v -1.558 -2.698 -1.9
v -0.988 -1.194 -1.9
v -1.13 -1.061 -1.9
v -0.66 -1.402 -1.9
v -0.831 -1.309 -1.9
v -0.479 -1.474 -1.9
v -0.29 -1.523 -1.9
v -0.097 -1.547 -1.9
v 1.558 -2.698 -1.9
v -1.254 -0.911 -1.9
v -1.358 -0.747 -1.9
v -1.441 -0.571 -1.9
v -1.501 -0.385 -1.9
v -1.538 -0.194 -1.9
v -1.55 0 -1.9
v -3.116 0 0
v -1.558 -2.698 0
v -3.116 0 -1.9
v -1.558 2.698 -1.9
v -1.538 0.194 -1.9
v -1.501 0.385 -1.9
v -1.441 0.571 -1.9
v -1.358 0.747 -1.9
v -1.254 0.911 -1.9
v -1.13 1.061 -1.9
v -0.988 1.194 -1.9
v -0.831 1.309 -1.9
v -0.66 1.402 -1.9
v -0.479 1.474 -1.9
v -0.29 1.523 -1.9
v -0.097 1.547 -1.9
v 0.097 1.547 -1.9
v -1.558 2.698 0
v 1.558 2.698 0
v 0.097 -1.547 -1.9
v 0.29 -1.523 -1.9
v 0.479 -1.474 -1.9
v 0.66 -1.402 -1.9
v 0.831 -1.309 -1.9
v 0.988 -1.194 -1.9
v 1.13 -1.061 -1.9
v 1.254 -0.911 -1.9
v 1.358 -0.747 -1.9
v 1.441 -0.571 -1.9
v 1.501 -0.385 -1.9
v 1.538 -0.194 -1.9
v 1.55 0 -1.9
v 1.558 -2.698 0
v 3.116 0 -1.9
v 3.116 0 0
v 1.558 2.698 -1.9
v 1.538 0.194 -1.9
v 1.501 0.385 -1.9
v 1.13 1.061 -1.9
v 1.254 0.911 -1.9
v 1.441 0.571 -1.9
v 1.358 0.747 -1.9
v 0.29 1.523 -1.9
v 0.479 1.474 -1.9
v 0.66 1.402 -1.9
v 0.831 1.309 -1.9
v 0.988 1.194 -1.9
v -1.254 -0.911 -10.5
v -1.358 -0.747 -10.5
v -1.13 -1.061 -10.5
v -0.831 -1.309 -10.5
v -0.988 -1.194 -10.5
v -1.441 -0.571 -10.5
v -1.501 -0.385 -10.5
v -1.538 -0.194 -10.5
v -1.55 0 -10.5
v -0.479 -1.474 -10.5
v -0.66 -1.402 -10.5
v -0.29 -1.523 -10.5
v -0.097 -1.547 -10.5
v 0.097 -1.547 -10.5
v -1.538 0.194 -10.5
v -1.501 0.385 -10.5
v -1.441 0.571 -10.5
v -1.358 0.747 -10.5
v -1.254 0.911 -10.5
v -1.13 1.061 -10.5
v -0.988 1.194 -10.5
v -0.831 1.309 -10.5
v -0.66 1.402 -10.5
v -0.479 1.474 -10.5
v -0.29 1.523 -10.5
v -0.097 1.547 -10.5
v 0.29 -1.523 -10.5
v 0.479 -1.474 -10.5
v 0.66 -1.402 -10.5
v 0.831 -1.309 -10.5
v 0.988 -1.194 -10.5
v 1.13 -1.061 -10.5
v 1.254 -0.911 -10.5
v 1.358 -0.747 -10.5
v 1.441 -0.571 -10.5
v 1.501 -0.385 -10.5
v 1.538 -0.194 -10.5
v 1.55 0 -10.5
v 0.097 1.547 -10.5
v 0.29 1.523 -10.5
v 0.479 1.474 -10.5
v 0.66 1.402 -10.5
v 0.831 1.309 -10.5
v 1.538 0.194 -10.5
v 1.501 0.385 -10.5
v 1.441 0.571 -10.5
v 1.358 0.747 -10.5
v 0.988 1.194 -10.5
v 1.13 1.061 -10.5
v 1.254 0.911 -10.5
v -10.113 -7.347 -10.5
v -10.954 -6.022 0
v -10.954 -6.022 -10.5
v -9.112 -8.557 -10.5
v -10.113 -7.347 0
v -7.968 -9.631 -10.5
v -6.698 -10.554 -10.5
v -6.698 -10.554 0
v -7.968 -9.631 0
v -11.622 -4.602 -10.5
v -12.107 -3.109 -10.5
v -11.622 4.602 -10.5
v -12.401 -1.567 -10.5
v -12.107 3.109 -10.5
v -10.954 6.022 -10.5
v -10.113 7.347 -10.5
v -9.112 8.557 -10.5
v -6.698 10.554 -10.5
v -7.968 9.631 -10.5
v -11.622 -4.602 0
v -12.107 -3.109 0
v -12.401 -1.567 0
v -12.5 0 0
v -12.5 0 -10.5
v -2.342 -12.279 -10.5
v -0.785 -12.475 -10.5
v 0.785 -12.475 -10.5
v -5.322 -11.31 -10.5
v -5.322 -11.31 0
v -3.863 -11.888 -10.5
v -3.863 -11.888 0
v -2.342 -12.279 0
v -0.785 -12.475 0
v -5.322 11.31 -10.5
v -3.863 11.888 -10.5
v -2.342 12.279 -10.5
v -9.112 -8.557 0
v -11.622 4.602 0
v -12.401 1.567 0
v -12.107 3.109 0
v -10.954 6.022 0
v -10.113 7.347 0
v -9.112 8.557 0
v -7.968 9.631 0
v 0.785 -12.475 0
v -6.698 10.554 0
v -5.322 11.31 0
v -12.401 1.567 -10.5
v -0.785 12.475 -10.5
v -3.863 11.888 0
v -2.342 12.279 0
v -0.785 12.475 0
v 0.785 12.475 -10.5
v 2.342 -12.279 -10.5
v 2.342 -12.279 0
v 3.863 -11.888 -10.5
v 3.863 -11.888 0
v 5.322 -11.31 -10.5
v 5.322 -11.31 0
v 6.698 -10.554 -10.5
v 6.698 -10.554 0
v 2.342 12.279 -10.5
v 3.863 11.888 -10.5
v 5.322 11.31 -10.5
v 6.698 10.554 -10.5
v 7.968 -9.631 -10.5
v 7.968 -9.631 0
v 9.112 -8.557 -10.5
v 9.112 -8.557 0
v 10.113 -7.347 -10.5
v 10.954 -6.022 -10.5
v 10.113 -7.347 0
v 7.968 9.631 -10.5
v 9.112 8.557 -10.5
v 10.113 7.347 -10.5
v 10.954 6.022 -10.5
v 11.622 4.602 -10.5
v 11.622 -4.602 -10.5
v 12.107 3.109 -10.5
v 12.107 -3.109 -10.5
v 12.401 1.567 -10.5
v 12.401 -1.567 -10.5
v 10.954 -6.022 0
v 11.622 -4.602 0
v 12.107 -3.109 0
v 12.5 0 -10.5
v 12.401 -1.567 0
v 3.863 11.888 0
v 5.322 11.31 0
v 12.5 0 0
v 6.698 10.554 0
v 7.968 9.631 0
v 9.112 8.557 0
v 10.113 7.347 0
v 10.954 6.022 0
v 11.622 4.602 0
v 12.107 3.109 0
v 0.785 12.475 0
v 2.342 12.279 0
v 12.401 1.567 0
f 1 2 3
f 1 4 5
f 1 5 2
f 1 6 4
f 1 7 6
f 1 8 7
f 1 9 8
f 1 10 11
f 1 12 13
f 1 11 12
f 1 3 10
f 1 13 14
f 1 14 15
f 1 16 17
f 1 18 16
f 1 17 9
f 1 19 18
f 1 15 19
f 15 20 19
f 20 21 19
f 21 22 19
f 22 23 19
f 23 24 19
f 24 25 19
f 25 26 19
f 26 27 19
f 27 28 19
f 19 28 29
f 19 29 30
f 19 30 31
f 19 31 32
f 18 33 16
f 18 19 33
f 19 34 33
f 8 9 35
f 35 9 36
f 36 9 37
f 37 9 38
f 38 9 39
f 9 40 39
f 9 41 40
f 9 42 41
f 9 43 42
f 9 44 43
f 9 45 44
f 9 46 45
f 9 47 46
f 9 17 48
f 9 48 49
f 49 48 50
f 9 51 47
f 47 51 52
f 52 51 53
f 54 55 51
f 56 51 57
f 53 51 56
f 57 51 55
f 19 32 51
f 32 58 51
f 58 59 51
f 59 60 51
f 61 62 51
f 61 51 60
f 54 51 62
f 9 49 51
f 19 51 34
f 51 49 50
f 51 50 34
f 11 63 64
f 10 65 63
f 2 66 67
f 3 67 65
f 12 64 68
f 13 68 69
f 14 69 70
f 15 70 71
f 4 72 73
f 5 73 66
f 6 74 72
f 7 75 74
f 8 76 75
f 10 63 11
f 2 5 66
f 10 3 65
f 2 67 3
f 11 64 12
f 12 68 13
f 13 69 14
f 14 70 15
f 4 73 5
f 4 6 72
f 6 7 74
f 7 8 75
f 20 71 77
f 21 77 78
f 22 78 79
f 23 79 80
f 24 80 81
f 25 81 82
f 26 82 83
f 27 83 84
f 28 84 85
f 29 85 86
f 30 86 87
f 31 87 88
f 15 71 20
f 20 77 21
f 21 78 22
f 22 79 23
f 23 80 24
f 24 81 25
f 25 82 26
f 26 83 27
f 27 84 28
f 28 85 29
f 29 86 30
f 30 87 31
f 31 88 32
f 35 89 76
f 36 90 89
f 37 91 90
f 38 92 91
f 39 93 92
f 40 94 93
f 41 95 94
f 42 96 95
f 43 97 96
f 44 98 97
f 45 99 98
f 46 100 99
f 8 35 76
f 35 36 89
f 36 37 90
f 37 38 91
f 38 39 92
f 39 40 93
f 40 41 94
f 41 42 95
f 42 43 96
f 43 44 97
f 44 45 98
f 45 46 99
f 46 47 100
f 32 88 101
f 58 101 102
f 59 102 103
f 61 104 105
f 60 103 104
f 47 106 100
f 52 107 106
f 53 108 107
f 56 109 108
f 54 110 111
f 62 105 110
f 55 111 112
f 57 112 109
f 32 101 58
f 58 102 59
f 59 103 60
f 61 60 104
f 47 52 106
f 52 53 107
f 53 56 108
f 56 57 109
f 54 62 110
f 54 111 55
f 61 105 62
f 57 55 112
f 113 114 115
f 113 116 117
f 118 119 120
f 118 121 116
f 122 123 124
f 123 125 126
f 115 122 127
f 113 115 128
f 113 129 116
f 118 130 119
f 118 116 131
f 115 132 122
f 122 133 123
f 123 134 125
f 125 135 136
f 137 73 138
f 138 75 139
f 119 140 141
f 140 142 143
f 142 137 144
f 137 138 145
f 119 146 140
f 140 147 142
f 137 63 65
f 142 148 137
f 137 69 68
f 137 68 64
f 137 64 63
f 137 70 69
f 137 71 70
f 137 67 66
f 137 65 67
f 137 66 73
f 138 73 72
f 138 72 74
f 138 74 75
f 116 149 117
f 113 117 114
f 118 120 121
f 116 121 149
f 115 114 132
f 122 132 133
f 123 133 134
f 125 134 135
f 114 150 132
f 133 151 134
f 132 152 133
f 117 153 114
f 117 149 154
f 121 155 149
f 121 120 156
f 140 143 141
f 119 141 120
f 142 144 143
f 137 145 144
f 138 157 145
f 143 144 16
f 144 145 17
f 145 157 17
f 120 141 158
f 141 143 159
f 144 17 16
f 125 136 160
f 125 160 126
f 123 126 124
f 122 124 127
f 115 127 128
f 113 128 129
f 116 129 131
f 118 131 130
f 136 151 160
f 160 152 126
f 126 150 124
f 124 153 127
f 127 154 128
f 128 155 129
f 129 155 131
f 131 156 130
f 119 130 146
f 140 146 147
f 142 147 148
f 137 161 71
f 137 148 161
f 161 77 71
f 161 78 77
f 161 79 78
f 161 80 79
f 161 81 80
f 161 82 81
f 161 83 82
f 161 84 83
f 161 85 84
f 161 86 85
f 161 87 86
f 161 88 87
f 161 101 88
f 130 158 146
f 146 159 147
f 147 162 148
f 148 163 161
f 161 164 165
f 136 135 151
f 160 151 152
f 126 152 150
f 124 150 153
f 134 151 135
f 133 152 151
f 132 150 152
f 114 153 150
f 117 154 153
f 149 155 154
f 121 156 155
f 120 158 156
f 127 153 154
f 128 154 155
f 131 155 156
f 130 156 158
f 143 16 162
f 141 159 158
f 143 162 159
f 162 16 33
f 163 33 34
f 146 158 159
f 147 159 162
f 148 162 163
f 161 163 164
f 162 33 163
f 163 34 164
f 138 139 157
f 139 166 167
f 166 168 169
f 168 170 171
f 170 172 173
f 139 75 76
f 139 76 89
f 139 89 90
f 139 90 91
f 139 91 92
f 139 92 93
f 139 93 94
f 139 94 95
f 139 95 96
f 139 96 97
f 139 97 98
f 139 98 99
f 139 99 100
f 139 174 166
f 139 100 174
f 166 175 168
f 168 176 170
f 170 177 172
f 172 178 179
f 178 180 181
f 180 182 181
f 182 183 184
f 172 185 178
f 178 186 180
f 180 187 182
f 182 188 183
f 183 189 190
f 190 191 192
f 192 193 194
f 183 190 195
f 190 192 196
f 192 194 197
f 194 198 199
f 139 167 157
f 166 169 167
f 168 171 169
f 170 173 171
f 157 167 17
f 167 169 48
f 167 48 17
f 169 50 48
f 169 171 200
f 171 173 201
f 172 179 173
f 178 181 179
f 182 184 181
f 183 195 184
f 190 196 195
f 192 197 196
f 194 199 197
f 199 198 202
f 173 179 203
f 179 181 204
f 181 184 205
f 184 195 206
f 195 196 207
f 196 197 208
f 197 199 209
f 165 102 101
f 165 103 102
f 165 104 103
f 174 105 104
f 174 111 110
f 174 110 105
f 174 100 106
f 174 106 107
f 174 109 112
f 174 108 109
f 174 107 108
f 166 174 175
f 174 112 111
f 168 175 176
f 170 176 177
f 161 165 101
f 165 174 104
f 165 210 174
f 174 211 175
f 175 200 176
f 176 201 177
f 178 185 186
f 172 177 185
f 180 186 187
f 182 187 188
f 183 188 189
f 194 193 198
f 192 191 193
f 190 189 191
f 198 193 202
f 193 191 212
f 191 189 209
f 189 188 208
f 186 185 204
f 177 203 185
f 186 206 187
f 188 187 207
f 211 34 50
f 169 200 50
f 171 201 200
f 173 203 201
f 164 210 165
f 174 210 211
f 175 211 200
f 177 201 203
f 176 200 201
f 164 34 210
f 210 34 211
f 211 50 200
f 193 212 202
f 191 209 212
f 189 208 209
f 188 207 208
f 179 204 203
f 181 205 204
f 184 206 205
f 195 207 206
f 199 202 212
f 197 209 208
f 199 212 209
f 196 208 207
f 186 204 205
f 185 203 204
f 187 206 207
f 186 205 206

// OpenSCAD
$fn = 50;

difference() {
	union() {
		translate(v = [0, 0, -10.5]) {
			cylinder(h = 10.5, r = 12.5);
		}
	}
	union() {
		translate(v = [0, 0, 0]) {
			rotate(a = [0, 0, 0]) {
				difference() {
					union() {
						translate(v = [0, 0, -1.9]) {
							linear_extrude(height = 1.9) {
								polygon(points = [[3.1158, 0.0], [1.5579000000000005, 2.698361953111554], [-1.5578999999999994, 2.6983619531115544], [-3.1158, 3.815754496783323e-16], [-1.5579000000000014, -2.6983619531115535], [1.557899999999998, -2.6983619531115552]]);
							}
						}
					}
					union();
				}
			}
		}
		#translate(v = [0, 0, -100.0]) {
			cylinder(h = 200, r = 1.55);
		}
	}
}
